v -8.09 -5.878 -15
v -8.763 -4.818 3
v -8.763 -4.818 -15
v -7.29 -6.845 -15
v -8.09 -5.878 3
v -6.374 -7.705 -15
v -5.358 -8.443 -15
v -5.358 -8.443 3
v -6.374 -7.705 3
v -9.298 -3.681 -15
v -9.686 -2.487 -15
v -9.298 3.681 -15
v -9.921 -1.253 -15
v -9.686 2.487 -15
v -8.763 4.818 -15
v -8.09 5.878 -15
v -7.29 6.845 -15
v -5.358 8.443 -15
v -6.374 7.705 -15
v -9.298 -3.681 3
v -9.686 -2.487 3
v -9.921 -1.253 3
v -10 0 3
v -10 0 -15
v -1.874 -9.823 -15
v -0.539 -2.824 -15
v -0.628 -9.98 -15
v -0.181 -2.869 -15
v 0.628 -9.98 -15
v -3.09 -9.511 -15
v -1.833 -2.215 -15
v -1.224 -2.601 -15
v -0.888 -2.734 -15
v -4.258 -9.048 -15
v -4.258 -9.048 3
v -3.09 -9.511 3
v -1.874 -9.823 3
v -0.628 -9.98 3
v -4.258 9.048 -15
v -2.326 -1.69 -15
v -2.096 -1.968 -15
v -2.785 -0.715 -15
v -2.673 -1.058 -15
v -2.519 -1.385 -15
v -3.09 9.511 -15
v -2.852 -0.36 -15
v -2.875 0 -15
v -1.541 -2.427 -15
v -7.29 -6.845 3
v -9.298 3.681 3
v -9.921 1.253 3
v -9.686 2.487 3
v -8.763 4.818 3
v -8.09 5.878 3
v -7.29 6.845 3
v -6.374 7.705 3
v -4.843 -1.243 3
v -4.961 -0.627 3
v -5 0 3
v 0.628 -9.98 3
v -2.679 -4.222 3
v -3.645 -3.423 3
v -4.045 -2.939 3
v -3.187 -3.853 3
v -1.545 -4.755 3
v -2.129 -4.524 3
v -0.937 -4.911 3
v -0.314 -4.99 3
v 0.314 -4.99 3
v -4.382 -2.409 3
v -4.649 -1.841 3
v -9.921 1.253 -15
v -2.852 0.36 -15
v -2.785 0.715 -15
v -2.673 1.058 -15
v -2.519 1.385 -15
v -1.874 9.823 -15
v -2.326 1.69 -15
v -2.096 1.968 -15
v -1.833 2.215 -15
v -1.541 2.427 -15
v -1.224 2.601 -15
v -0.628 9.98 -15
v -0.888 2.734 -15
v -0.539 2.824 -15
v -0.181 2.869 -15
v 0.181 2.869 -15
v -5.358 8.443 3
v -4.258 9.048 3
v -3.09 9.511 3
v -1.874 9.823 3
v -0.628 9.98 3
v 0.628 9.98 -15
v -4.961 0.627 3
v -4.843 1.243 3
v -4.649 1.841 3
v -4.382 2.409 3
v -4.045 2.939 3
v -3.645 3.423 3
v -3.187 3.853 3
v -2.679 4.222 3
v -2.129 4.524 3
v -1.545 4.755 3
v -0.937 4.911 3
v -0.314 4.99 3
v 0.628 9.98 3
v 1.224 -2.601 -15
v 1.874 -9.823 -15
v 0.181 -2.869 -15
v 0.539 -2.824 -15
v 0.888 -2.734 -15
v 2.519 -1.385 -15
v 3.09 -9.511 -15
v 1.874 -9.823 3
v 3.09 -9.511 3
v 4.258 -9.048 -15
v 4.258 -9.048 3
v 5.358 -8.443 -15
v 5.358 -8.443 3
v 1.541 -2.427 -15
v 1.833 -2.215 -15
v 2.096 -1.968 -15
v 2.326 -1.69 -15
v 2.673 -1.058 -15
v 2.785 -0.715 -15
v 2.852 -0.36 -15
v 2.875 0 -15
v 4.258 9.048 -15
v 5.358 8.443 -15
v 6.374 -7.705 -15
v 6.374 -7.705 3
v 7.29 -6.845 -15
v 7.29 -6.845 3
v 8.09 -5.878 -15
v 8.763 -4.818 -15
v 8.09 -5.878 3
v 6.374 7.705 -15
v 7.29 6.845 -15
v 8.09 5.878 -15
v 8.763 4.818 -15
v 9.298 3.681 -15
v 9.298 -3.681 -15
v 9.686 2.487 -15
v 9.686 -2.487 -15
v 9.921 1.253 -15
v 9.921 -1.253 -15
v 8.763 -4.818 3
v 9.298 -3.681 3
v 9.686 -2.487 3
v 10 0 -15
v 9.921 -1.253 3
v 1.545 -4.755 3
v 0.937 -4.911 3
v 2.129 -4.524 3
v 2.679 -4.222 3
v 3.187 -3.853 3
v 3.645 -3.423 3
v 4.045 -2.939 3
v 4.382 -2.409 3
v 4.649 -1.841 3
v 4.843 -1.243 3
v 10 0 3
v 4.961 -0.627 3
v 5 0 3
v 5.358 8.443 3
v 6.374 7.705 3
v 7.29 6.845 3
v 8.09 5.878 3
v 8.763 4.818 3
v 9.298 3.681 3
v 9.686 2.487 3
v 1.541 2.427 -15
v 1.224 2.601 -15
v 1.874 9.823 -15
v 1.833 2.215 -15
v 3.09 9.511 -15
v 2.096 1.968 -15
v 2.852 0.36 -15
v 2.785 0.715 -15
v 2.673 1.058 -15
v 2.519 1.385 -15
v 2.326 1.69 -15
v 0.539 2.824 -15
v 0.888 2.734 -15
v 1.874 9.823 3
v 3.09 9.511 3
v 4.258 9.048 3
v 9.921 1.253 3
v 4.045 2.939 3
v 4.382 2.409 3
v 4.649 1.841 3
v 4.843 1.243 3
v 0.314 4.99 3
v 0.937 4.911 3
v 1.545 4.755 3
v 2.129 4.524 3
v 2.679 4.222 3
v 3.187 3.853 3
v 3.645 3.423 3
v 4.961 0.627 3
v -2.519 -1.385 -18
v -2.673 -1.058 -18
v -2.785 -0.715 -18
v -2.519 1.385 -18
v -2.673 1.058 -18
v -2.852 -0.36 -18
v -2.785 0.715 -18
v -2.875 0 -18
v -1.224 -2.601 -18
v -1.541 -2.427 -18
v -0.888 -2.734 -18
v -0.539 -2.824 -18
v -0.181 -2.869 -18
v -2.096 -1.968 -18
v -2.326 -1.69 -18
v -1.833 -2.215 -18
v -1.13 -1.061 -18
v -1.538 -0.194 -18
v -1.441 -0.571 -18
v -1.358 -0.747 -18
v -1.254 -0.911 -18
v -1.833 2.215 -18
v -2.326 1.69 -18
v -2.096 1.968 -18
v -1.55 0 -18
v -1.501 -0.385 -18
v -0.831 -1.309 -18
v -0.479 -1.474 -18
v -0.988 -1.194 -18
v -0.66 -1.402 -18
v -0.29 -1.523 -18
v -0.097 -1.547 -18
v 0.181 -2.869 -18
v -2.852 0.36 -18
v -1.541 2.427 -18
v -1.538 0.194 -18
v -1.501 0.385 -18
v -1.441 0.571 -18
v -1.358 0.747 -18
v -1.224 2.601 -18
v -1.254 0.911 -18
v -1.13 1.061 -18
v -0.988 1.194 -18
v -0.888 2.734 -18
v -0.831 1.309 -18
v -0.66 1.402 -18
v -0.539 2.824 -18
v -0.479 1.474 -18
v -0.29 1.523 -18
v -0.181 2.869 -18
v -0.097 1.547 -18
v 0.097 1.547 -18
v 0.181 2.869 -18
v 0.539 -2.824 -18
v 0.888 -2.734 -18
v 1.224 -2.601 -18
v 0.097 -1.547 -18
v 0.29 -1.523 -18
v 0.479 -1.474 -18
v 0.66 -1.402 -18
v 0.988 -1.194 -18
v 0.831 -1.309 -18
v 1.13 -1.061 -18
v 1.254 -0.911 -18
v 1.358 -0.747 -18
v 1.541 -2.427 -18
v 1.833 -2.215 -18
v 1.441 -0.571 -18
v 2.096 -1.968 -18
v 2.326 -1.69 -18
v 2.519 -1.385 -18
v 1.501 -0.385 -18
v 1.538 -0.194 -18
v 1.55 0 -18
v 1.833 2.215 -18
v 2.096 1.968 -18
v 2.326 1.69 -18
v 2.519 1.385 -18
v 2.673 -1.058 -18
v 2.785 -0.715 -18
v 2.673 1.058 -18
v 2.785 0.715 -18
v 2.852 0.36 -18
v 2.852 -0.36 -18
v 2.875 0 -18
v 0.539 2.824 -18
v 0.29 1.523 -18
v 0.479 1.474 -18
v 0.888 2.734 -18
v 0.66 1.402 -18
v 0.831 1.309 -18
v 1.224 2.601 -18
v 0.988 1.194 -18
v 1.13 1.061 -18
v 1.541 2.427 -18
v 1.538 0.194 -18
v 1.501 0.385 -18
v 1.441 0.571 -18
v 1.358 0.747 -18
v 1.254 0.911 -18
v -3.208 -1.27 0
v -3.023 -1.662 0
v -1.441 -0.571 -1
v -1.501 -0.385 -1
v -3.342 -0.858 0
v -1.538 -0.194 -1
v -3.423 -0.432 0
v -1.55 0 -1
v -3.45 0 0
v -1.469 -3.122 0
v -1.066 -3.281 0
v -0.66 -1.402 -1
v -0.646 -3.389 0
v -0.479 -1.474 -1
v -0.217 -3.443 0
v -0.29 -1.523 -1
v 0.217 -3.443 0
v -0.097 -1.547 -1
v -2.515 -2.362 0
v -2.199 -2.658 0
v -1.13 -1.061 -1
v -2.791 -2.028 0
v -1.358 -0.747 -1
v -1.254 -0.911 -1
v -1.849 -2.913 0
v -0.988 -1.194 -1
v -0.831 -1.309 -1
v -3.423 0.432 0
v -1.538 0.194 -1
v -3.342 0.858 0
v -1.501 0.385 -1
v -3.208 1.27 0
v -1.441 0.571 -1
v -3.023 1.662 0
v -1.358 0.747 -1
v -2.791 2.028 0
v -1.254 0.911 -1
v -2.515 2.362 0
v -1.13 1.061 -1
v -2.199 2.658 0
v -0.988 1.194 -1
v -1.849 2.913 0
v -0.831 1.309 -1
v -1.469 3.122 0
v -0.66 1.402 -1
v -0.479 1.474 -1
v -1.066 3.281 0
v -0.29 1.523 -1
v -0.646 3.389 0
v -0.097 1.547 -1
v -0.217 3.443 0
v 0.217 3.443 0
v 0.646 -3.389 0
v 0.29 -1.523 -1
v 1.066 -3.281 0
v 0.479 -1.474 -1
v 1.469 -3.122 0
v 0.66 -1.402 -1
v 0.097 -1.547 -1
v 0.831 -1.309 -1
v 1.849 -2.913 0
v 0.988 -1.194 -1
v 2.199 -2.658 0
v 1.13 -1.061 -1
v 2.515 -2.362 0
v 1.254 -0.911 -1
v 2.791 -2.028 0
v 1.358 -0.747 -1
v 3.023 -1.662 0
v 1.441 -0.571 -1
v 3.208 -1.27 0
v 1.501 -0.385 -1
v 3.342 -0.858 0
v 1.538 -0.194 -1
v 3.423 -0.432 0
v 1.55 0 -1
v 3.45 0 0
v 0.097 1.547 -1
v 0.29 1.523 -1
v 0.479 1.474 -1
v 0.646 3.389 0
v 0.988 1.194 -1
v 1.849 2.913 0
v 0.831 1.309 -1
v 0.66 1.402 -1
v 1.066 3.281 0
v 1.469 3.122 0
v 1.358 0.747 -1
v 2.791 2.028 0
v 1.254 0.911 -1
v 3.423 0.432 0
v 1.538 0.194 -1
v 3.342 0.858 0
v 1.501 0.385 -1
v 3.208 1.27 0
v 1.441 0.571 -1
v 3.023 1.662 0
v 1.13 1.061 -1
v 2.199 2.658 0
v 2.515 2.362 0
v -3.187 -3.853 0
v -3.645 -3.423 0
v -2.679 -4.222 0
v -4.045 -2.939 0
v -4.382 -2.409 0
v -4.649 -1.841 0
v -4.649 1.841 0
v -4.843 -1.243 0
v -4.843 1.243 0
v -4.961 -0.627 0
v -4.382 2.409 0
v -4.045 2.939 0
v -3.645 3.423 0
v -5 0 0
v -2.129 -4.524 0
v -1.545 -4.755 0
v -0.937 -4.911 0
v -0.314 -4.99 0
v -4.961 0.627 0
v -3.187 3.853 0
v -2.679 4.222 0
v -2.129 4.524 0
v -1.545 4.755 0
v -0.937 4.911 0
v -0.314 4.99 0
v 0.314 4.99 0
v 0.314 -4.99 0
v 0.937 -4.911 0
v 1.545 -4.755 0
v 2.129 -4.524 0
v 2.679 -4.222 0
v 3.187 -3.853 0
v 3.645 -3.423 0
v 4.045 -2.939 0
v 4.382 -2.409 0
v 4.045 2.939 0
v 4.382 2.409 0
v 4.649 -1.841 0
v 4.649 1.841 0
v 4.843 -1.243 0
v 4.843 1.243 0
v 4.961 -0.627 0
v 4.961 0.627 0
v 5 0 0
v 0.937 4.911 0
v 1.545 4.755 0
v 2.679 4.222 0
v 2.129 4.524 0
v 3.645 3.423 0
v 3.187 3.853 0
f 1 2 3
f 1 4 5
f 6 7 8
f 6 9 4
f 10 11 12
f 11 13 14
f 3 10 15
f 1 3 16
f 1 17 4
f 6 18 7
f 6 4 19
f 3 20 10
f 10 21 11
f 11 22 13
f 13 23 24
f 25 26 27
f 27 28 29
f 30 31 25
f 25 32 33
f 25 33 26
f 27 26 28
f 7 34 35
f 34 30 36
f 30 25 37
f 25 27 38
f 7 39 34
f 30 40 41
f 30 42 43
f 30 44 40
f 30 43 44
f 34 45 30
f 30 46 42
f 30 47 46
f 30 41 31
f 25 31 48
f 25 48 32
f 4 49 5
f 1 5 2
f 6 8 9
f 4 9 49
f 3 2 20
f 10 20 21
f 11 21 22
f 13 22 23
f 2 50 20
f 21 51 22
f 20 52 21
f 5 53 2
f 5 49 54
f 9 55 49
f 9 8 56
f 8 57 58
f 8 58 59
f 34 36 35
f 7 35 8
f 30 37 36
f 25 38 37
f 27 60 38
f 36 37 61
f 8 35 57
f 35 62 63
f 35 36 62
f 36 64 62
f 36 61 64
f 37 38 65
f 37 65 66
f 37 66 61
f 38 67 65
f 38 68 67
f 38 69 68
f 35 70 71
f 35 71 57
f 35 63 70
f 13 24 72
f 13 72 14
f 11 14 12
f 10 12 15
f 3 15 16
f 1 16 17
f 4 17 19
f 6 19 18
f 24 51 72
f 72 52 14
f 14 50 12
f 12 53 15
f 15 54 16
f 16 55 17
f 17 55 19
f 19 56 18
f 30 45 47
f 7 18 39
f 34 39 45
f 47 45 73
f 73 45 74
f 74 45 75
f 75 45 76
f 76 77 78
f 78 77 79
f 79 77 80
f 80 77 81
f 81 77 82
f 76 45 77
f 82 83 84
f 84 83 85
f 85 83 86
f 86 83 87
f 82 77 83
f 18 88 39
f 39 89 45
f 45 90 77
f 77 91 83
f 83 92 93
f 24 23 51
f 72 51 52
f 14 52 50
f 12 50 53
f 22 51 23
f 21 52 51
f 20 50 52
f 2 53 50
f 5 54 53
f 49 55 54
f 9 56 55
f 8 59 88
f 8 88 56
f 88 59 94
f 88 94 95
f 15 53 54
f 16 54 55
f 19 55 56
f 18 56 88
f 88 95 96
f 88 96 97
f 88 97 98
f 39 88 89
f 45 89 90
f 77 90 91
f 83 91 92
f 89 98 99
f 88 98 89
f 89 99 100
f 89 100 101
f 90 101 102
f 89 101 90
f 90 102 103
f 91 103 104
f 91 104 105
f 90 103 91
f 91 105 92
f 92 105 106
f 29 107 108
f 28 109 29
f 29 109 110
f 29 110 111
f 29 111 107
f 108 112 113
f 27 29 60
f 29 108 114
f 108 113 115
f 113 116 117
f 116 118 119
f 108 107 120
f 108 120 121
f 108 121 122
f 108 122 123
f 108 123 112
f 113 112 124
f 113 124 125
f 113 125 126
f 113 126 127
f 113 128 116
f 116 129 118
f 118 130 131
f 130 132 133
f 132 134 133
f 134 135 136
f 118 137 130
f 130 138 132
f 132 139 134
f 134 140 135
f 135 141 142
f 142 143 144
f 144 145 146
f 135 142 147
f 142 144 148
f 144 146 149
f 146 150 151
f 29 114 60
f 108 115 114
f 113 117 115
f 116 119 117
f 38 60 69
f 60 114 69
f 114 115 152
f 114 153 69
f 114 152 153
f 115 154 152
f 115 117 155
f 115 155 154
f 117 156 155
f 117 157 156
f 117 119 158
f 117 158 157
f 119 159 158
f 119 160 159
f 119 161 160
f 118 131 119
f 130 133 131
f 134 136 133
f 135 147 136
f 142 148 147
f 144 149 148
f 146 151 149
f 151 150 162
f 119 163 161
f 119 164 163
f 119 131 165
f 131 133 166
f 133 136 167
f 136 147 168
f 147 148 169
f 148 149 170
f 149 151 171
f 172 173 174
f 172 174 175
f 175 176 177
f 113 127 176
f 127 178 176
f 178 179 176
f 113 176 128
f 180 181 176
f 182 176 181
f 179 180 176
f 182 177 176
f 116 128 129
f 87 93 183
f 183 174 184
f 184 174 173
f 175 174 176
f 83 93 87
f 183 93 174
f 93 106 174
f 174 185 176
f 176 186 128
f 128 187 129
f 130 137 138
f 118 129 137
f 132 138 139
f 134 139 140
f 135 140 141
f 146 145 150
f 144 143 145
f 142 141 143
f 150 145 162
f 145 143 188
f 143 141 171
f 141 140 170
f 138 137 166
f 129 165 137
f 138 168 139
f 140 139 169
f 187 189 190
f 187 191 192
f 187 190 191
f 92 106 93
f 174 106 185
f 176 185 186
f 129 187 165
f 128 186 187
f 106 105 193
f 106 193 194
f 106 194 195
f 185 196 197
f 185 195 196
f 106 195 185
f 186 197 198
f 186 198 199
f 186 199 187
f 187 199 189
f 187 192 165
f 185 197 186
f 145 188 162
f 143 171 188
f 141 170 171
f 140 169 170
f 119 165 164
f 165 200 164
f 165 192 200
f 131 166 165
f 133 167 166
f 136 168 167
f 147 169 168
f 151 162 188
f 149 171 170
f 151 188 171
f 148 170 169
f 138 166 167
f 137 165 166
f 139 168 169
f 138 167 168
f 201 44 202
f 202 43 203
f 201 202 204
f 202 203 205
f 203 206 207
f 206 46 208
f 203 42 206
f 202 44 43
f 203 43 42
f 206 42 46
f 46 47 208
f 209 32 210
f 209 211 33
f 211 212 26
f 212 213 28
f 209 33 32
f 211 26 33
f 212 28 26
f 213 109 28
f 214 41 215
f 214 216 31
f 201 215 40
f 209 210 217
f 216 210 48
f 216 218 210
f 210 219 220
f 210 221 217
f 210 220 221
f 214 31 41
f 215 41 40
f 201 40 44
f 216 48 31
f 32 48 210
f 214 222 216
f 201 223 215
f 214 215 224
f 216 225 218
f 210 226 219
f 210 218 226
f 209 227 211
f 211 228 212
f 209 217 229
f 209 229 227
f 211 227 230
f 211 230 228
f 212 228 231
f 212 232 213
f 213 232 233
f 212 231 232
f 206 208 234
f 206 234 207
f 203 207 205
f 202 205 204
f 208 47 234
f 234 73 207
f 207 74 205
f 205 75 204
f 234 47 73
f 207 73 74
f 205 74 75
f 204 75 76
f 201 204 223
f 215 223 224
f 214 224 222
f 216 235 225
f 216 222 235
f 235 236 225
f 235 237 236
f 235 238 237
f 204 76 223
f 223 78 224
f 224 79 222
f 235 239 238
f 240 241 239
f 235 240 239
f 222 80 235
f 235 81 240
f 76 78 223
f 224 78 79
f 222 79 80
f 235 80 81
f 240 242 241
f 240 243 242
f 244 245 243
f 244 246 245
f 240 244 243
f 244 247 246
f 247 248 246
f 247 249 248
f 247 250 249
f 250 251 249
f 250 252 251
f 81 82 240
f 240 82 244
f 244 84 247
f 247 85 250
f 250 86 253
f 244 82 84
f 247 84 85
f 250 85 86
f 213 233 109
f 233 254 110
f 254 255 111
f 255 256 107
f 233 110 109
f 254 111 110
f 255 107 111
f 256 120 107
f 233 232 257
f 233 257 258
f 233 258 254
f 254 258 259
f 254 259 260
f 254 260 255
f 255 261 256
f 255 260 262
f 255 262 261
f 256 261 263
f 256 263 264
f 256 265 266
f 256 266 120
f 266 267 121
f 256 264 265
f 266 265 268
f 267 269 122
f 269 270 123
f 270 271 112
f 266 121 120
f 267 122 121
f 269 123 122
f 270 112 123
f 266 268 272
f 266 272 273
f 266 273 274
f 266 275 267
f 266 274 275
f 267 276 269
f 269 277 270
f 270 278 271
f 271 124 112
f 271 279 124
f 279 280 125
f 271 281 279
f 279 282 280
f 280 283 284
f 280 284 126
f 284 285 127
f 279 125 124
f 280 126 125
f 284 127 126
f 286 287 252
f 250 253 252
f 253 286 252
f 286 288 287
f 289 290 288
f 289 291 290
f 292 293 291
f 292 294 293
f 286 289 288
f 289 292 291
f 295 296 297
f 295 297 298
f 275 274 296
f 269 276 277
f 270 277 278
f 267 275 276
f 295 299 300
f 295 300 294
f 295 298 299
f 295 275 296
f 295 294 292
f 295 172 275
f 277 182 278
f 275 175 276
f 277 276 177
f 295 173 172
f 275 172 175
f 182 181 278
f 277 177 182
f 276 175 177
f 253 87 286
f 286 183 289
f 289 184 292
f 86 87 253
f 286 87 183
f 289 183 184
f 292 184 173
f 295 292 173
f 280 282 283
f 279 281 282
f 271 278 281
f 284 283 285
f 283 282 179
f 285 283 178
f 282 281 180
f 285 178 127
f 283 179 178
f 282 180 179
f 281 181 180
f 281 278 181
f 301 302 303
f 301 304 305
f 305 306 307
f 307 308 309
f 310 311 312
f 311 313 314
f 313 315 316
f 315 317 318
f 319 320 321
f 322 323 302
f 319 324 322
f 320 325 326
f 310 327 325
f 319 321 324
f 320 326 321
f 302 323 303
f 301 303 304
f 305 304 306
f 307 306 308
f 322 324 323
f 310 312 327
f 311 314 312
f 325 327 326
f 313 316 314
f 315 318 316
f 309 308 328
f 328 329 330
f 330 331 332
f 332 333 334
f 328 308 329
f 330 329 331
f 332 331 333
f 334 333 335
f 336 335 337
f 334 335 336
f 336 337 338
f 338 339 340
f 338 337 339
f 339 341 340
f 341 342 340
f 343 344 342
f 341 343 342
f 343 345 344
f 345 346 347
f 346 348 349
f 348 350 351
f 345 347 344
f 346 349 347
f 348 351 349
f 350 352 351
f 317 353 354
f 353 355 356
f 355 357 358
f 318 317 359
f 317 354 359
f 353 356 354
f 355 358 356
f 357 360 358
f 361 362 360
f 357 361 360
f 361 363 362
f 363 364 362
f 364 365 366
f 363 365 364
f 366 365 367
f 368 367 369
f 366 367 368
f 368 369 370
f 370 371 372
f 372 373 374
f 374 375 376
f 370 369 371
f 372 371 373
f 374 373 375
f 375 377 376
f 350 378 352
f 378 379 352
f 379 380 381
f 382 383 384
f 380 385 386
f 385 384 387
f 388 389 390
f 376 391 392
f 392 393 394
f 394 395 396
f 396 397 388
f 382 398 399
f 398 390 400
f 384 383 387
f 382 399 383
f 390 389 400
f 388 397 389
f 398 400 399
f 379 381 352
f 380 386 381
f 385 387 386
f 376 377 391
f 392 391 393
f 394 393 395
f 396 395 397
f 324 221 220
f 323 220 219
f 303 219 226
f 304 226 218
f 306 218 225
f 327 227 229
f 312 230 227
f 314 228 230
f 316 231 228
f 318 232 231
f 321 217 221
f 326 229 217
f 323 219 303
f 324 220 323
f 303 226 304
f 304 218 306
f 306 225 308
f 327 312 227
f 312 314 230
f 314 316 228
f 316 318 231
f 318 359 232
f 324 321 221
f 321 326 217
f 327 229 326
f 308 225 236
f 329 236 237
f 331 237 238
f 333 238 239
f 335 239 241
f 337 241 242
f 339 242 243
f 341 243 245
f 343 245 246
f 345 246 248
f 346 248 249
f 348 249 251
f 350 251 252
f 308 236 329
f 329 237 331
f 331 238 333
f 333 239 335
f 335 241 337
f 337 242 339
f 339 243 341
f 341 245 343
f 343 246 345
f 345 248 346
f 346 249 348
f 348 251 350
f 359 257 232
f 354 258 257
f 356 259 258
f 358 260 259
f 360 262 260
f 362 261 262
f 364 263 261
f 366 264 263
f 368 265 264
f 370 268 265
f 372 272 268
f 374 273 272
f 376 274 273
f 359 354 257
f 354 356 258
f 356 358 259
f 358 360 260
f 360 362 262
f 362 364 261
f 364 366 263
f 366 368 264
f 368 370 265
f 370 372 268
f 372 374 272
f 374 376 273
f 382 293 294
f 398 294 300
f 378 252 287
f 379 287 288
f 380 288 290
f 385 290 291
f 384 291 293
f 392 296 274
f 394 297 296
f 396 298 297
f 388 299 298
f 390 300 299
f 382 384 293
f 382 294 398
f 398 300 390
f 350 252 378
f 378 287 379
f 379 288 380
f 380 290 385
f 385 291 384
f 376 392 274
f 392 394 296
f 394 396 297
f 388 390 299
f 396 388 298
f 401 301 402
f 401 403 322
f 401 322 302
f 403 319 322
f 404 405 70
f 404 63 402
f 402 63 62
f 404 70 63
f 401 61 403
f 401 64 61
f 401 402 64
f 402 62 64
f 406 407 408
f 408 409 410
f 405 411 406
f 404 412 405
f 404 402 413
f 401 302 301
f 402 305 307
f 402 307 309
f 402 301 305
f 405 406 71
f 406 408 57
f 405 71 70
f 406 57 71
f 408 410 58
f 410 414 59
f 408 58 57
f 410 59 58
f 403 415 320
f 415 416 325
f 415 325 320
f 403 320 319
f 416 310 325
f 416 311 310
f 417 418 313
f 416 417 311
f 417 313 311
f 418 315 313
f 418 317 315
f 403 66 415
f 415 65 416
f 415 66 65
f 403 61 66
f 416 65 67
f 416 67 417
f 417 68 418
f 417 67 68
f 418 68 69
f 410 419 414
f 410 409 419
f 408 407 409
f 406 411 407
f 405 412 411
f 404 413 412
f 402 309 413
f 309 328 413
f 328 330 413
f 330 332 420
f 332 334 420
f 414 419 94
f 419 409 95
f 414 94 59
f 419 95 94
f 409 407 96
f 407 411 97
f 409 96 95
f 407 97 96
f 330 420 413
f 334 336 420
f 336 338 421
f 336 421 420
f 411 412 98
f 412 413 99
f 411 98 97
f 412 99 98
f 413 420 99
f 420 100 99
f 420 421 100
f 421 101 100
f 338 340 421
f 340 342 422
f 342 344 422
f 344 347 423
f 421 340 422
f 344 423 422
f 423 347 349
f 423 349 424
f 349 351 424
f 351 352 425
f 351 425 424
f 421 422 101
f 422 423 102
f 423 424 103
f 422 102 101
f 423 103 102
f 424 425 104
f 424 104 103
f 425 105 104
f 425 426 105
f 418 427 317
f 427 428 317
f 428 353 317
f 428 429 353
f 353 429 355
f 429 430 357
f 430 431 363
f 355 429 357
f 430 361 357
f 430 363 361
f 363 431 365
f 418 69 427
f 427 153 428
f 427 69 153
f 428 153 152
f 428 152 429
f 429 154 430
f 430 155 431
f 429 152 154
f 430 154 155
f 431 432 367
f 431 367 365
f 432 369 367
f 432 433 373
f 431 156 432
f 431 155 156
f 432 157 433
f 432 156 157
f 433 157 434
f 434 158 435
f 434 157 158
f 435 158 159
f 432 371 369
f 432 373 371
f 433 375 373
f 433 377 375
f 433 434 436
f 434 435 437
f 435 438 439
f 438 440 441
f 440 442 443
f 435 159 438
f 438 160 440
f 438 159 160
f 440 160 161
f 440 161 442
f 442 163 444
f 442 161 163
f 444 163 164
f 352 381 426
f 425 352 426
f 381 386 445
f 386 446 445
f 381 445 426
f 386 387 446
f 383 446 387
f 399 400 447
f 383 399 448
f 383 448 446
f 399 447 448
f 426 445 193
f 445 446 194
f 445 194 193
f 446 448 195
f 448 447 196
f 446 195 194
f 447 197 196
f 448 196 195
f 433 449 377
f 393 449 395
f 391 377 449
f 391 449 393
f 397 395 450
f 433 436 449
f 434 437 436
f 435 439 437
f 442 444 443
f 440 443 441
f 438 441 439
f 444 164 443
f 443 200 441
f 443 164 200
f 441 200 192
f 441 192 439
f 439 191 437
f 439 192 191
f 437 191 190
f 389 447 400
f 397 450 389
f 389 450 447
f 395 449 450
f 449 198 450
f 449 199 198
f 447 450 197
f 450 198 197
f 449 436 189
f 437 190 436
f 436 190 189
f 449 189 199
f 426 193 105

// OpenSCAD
$fn = 50;

difference() {
	union() {
		translate(v = [0, 0, -15.0]) {
			cylinder(h = 18, r = 10.0);
		}
		#translate(v = [0, 0, -18.0]) {
			cylinder(h = 18, r = 2.875);
		}
	}
	union() {
		translate(v = [0, 0, 0]) {
			rotate(a = [0, 0, 0]) {
				difference() {
					union() {
						translate(v = [0, 0, -18.0]) {
							cylinder(h = 18, r = 1.25);
						}
						translate(v = [0, 0, -1.0]) {
							cylinder(h = 1.0, r1 = 1.55, r2 = 3.45);
						}
						translate(v = [0, 0, -18.0]) {
							cylinder(h = 18, r = 1.55);
						}
						translate(v = [0, 0, -18.0]) {
							cylinder(h = 18, r = 1.25);
						}
					}
					union();
				}
			}
		}
		#cylinder(h = 3, r = 5.0);
	}
}
